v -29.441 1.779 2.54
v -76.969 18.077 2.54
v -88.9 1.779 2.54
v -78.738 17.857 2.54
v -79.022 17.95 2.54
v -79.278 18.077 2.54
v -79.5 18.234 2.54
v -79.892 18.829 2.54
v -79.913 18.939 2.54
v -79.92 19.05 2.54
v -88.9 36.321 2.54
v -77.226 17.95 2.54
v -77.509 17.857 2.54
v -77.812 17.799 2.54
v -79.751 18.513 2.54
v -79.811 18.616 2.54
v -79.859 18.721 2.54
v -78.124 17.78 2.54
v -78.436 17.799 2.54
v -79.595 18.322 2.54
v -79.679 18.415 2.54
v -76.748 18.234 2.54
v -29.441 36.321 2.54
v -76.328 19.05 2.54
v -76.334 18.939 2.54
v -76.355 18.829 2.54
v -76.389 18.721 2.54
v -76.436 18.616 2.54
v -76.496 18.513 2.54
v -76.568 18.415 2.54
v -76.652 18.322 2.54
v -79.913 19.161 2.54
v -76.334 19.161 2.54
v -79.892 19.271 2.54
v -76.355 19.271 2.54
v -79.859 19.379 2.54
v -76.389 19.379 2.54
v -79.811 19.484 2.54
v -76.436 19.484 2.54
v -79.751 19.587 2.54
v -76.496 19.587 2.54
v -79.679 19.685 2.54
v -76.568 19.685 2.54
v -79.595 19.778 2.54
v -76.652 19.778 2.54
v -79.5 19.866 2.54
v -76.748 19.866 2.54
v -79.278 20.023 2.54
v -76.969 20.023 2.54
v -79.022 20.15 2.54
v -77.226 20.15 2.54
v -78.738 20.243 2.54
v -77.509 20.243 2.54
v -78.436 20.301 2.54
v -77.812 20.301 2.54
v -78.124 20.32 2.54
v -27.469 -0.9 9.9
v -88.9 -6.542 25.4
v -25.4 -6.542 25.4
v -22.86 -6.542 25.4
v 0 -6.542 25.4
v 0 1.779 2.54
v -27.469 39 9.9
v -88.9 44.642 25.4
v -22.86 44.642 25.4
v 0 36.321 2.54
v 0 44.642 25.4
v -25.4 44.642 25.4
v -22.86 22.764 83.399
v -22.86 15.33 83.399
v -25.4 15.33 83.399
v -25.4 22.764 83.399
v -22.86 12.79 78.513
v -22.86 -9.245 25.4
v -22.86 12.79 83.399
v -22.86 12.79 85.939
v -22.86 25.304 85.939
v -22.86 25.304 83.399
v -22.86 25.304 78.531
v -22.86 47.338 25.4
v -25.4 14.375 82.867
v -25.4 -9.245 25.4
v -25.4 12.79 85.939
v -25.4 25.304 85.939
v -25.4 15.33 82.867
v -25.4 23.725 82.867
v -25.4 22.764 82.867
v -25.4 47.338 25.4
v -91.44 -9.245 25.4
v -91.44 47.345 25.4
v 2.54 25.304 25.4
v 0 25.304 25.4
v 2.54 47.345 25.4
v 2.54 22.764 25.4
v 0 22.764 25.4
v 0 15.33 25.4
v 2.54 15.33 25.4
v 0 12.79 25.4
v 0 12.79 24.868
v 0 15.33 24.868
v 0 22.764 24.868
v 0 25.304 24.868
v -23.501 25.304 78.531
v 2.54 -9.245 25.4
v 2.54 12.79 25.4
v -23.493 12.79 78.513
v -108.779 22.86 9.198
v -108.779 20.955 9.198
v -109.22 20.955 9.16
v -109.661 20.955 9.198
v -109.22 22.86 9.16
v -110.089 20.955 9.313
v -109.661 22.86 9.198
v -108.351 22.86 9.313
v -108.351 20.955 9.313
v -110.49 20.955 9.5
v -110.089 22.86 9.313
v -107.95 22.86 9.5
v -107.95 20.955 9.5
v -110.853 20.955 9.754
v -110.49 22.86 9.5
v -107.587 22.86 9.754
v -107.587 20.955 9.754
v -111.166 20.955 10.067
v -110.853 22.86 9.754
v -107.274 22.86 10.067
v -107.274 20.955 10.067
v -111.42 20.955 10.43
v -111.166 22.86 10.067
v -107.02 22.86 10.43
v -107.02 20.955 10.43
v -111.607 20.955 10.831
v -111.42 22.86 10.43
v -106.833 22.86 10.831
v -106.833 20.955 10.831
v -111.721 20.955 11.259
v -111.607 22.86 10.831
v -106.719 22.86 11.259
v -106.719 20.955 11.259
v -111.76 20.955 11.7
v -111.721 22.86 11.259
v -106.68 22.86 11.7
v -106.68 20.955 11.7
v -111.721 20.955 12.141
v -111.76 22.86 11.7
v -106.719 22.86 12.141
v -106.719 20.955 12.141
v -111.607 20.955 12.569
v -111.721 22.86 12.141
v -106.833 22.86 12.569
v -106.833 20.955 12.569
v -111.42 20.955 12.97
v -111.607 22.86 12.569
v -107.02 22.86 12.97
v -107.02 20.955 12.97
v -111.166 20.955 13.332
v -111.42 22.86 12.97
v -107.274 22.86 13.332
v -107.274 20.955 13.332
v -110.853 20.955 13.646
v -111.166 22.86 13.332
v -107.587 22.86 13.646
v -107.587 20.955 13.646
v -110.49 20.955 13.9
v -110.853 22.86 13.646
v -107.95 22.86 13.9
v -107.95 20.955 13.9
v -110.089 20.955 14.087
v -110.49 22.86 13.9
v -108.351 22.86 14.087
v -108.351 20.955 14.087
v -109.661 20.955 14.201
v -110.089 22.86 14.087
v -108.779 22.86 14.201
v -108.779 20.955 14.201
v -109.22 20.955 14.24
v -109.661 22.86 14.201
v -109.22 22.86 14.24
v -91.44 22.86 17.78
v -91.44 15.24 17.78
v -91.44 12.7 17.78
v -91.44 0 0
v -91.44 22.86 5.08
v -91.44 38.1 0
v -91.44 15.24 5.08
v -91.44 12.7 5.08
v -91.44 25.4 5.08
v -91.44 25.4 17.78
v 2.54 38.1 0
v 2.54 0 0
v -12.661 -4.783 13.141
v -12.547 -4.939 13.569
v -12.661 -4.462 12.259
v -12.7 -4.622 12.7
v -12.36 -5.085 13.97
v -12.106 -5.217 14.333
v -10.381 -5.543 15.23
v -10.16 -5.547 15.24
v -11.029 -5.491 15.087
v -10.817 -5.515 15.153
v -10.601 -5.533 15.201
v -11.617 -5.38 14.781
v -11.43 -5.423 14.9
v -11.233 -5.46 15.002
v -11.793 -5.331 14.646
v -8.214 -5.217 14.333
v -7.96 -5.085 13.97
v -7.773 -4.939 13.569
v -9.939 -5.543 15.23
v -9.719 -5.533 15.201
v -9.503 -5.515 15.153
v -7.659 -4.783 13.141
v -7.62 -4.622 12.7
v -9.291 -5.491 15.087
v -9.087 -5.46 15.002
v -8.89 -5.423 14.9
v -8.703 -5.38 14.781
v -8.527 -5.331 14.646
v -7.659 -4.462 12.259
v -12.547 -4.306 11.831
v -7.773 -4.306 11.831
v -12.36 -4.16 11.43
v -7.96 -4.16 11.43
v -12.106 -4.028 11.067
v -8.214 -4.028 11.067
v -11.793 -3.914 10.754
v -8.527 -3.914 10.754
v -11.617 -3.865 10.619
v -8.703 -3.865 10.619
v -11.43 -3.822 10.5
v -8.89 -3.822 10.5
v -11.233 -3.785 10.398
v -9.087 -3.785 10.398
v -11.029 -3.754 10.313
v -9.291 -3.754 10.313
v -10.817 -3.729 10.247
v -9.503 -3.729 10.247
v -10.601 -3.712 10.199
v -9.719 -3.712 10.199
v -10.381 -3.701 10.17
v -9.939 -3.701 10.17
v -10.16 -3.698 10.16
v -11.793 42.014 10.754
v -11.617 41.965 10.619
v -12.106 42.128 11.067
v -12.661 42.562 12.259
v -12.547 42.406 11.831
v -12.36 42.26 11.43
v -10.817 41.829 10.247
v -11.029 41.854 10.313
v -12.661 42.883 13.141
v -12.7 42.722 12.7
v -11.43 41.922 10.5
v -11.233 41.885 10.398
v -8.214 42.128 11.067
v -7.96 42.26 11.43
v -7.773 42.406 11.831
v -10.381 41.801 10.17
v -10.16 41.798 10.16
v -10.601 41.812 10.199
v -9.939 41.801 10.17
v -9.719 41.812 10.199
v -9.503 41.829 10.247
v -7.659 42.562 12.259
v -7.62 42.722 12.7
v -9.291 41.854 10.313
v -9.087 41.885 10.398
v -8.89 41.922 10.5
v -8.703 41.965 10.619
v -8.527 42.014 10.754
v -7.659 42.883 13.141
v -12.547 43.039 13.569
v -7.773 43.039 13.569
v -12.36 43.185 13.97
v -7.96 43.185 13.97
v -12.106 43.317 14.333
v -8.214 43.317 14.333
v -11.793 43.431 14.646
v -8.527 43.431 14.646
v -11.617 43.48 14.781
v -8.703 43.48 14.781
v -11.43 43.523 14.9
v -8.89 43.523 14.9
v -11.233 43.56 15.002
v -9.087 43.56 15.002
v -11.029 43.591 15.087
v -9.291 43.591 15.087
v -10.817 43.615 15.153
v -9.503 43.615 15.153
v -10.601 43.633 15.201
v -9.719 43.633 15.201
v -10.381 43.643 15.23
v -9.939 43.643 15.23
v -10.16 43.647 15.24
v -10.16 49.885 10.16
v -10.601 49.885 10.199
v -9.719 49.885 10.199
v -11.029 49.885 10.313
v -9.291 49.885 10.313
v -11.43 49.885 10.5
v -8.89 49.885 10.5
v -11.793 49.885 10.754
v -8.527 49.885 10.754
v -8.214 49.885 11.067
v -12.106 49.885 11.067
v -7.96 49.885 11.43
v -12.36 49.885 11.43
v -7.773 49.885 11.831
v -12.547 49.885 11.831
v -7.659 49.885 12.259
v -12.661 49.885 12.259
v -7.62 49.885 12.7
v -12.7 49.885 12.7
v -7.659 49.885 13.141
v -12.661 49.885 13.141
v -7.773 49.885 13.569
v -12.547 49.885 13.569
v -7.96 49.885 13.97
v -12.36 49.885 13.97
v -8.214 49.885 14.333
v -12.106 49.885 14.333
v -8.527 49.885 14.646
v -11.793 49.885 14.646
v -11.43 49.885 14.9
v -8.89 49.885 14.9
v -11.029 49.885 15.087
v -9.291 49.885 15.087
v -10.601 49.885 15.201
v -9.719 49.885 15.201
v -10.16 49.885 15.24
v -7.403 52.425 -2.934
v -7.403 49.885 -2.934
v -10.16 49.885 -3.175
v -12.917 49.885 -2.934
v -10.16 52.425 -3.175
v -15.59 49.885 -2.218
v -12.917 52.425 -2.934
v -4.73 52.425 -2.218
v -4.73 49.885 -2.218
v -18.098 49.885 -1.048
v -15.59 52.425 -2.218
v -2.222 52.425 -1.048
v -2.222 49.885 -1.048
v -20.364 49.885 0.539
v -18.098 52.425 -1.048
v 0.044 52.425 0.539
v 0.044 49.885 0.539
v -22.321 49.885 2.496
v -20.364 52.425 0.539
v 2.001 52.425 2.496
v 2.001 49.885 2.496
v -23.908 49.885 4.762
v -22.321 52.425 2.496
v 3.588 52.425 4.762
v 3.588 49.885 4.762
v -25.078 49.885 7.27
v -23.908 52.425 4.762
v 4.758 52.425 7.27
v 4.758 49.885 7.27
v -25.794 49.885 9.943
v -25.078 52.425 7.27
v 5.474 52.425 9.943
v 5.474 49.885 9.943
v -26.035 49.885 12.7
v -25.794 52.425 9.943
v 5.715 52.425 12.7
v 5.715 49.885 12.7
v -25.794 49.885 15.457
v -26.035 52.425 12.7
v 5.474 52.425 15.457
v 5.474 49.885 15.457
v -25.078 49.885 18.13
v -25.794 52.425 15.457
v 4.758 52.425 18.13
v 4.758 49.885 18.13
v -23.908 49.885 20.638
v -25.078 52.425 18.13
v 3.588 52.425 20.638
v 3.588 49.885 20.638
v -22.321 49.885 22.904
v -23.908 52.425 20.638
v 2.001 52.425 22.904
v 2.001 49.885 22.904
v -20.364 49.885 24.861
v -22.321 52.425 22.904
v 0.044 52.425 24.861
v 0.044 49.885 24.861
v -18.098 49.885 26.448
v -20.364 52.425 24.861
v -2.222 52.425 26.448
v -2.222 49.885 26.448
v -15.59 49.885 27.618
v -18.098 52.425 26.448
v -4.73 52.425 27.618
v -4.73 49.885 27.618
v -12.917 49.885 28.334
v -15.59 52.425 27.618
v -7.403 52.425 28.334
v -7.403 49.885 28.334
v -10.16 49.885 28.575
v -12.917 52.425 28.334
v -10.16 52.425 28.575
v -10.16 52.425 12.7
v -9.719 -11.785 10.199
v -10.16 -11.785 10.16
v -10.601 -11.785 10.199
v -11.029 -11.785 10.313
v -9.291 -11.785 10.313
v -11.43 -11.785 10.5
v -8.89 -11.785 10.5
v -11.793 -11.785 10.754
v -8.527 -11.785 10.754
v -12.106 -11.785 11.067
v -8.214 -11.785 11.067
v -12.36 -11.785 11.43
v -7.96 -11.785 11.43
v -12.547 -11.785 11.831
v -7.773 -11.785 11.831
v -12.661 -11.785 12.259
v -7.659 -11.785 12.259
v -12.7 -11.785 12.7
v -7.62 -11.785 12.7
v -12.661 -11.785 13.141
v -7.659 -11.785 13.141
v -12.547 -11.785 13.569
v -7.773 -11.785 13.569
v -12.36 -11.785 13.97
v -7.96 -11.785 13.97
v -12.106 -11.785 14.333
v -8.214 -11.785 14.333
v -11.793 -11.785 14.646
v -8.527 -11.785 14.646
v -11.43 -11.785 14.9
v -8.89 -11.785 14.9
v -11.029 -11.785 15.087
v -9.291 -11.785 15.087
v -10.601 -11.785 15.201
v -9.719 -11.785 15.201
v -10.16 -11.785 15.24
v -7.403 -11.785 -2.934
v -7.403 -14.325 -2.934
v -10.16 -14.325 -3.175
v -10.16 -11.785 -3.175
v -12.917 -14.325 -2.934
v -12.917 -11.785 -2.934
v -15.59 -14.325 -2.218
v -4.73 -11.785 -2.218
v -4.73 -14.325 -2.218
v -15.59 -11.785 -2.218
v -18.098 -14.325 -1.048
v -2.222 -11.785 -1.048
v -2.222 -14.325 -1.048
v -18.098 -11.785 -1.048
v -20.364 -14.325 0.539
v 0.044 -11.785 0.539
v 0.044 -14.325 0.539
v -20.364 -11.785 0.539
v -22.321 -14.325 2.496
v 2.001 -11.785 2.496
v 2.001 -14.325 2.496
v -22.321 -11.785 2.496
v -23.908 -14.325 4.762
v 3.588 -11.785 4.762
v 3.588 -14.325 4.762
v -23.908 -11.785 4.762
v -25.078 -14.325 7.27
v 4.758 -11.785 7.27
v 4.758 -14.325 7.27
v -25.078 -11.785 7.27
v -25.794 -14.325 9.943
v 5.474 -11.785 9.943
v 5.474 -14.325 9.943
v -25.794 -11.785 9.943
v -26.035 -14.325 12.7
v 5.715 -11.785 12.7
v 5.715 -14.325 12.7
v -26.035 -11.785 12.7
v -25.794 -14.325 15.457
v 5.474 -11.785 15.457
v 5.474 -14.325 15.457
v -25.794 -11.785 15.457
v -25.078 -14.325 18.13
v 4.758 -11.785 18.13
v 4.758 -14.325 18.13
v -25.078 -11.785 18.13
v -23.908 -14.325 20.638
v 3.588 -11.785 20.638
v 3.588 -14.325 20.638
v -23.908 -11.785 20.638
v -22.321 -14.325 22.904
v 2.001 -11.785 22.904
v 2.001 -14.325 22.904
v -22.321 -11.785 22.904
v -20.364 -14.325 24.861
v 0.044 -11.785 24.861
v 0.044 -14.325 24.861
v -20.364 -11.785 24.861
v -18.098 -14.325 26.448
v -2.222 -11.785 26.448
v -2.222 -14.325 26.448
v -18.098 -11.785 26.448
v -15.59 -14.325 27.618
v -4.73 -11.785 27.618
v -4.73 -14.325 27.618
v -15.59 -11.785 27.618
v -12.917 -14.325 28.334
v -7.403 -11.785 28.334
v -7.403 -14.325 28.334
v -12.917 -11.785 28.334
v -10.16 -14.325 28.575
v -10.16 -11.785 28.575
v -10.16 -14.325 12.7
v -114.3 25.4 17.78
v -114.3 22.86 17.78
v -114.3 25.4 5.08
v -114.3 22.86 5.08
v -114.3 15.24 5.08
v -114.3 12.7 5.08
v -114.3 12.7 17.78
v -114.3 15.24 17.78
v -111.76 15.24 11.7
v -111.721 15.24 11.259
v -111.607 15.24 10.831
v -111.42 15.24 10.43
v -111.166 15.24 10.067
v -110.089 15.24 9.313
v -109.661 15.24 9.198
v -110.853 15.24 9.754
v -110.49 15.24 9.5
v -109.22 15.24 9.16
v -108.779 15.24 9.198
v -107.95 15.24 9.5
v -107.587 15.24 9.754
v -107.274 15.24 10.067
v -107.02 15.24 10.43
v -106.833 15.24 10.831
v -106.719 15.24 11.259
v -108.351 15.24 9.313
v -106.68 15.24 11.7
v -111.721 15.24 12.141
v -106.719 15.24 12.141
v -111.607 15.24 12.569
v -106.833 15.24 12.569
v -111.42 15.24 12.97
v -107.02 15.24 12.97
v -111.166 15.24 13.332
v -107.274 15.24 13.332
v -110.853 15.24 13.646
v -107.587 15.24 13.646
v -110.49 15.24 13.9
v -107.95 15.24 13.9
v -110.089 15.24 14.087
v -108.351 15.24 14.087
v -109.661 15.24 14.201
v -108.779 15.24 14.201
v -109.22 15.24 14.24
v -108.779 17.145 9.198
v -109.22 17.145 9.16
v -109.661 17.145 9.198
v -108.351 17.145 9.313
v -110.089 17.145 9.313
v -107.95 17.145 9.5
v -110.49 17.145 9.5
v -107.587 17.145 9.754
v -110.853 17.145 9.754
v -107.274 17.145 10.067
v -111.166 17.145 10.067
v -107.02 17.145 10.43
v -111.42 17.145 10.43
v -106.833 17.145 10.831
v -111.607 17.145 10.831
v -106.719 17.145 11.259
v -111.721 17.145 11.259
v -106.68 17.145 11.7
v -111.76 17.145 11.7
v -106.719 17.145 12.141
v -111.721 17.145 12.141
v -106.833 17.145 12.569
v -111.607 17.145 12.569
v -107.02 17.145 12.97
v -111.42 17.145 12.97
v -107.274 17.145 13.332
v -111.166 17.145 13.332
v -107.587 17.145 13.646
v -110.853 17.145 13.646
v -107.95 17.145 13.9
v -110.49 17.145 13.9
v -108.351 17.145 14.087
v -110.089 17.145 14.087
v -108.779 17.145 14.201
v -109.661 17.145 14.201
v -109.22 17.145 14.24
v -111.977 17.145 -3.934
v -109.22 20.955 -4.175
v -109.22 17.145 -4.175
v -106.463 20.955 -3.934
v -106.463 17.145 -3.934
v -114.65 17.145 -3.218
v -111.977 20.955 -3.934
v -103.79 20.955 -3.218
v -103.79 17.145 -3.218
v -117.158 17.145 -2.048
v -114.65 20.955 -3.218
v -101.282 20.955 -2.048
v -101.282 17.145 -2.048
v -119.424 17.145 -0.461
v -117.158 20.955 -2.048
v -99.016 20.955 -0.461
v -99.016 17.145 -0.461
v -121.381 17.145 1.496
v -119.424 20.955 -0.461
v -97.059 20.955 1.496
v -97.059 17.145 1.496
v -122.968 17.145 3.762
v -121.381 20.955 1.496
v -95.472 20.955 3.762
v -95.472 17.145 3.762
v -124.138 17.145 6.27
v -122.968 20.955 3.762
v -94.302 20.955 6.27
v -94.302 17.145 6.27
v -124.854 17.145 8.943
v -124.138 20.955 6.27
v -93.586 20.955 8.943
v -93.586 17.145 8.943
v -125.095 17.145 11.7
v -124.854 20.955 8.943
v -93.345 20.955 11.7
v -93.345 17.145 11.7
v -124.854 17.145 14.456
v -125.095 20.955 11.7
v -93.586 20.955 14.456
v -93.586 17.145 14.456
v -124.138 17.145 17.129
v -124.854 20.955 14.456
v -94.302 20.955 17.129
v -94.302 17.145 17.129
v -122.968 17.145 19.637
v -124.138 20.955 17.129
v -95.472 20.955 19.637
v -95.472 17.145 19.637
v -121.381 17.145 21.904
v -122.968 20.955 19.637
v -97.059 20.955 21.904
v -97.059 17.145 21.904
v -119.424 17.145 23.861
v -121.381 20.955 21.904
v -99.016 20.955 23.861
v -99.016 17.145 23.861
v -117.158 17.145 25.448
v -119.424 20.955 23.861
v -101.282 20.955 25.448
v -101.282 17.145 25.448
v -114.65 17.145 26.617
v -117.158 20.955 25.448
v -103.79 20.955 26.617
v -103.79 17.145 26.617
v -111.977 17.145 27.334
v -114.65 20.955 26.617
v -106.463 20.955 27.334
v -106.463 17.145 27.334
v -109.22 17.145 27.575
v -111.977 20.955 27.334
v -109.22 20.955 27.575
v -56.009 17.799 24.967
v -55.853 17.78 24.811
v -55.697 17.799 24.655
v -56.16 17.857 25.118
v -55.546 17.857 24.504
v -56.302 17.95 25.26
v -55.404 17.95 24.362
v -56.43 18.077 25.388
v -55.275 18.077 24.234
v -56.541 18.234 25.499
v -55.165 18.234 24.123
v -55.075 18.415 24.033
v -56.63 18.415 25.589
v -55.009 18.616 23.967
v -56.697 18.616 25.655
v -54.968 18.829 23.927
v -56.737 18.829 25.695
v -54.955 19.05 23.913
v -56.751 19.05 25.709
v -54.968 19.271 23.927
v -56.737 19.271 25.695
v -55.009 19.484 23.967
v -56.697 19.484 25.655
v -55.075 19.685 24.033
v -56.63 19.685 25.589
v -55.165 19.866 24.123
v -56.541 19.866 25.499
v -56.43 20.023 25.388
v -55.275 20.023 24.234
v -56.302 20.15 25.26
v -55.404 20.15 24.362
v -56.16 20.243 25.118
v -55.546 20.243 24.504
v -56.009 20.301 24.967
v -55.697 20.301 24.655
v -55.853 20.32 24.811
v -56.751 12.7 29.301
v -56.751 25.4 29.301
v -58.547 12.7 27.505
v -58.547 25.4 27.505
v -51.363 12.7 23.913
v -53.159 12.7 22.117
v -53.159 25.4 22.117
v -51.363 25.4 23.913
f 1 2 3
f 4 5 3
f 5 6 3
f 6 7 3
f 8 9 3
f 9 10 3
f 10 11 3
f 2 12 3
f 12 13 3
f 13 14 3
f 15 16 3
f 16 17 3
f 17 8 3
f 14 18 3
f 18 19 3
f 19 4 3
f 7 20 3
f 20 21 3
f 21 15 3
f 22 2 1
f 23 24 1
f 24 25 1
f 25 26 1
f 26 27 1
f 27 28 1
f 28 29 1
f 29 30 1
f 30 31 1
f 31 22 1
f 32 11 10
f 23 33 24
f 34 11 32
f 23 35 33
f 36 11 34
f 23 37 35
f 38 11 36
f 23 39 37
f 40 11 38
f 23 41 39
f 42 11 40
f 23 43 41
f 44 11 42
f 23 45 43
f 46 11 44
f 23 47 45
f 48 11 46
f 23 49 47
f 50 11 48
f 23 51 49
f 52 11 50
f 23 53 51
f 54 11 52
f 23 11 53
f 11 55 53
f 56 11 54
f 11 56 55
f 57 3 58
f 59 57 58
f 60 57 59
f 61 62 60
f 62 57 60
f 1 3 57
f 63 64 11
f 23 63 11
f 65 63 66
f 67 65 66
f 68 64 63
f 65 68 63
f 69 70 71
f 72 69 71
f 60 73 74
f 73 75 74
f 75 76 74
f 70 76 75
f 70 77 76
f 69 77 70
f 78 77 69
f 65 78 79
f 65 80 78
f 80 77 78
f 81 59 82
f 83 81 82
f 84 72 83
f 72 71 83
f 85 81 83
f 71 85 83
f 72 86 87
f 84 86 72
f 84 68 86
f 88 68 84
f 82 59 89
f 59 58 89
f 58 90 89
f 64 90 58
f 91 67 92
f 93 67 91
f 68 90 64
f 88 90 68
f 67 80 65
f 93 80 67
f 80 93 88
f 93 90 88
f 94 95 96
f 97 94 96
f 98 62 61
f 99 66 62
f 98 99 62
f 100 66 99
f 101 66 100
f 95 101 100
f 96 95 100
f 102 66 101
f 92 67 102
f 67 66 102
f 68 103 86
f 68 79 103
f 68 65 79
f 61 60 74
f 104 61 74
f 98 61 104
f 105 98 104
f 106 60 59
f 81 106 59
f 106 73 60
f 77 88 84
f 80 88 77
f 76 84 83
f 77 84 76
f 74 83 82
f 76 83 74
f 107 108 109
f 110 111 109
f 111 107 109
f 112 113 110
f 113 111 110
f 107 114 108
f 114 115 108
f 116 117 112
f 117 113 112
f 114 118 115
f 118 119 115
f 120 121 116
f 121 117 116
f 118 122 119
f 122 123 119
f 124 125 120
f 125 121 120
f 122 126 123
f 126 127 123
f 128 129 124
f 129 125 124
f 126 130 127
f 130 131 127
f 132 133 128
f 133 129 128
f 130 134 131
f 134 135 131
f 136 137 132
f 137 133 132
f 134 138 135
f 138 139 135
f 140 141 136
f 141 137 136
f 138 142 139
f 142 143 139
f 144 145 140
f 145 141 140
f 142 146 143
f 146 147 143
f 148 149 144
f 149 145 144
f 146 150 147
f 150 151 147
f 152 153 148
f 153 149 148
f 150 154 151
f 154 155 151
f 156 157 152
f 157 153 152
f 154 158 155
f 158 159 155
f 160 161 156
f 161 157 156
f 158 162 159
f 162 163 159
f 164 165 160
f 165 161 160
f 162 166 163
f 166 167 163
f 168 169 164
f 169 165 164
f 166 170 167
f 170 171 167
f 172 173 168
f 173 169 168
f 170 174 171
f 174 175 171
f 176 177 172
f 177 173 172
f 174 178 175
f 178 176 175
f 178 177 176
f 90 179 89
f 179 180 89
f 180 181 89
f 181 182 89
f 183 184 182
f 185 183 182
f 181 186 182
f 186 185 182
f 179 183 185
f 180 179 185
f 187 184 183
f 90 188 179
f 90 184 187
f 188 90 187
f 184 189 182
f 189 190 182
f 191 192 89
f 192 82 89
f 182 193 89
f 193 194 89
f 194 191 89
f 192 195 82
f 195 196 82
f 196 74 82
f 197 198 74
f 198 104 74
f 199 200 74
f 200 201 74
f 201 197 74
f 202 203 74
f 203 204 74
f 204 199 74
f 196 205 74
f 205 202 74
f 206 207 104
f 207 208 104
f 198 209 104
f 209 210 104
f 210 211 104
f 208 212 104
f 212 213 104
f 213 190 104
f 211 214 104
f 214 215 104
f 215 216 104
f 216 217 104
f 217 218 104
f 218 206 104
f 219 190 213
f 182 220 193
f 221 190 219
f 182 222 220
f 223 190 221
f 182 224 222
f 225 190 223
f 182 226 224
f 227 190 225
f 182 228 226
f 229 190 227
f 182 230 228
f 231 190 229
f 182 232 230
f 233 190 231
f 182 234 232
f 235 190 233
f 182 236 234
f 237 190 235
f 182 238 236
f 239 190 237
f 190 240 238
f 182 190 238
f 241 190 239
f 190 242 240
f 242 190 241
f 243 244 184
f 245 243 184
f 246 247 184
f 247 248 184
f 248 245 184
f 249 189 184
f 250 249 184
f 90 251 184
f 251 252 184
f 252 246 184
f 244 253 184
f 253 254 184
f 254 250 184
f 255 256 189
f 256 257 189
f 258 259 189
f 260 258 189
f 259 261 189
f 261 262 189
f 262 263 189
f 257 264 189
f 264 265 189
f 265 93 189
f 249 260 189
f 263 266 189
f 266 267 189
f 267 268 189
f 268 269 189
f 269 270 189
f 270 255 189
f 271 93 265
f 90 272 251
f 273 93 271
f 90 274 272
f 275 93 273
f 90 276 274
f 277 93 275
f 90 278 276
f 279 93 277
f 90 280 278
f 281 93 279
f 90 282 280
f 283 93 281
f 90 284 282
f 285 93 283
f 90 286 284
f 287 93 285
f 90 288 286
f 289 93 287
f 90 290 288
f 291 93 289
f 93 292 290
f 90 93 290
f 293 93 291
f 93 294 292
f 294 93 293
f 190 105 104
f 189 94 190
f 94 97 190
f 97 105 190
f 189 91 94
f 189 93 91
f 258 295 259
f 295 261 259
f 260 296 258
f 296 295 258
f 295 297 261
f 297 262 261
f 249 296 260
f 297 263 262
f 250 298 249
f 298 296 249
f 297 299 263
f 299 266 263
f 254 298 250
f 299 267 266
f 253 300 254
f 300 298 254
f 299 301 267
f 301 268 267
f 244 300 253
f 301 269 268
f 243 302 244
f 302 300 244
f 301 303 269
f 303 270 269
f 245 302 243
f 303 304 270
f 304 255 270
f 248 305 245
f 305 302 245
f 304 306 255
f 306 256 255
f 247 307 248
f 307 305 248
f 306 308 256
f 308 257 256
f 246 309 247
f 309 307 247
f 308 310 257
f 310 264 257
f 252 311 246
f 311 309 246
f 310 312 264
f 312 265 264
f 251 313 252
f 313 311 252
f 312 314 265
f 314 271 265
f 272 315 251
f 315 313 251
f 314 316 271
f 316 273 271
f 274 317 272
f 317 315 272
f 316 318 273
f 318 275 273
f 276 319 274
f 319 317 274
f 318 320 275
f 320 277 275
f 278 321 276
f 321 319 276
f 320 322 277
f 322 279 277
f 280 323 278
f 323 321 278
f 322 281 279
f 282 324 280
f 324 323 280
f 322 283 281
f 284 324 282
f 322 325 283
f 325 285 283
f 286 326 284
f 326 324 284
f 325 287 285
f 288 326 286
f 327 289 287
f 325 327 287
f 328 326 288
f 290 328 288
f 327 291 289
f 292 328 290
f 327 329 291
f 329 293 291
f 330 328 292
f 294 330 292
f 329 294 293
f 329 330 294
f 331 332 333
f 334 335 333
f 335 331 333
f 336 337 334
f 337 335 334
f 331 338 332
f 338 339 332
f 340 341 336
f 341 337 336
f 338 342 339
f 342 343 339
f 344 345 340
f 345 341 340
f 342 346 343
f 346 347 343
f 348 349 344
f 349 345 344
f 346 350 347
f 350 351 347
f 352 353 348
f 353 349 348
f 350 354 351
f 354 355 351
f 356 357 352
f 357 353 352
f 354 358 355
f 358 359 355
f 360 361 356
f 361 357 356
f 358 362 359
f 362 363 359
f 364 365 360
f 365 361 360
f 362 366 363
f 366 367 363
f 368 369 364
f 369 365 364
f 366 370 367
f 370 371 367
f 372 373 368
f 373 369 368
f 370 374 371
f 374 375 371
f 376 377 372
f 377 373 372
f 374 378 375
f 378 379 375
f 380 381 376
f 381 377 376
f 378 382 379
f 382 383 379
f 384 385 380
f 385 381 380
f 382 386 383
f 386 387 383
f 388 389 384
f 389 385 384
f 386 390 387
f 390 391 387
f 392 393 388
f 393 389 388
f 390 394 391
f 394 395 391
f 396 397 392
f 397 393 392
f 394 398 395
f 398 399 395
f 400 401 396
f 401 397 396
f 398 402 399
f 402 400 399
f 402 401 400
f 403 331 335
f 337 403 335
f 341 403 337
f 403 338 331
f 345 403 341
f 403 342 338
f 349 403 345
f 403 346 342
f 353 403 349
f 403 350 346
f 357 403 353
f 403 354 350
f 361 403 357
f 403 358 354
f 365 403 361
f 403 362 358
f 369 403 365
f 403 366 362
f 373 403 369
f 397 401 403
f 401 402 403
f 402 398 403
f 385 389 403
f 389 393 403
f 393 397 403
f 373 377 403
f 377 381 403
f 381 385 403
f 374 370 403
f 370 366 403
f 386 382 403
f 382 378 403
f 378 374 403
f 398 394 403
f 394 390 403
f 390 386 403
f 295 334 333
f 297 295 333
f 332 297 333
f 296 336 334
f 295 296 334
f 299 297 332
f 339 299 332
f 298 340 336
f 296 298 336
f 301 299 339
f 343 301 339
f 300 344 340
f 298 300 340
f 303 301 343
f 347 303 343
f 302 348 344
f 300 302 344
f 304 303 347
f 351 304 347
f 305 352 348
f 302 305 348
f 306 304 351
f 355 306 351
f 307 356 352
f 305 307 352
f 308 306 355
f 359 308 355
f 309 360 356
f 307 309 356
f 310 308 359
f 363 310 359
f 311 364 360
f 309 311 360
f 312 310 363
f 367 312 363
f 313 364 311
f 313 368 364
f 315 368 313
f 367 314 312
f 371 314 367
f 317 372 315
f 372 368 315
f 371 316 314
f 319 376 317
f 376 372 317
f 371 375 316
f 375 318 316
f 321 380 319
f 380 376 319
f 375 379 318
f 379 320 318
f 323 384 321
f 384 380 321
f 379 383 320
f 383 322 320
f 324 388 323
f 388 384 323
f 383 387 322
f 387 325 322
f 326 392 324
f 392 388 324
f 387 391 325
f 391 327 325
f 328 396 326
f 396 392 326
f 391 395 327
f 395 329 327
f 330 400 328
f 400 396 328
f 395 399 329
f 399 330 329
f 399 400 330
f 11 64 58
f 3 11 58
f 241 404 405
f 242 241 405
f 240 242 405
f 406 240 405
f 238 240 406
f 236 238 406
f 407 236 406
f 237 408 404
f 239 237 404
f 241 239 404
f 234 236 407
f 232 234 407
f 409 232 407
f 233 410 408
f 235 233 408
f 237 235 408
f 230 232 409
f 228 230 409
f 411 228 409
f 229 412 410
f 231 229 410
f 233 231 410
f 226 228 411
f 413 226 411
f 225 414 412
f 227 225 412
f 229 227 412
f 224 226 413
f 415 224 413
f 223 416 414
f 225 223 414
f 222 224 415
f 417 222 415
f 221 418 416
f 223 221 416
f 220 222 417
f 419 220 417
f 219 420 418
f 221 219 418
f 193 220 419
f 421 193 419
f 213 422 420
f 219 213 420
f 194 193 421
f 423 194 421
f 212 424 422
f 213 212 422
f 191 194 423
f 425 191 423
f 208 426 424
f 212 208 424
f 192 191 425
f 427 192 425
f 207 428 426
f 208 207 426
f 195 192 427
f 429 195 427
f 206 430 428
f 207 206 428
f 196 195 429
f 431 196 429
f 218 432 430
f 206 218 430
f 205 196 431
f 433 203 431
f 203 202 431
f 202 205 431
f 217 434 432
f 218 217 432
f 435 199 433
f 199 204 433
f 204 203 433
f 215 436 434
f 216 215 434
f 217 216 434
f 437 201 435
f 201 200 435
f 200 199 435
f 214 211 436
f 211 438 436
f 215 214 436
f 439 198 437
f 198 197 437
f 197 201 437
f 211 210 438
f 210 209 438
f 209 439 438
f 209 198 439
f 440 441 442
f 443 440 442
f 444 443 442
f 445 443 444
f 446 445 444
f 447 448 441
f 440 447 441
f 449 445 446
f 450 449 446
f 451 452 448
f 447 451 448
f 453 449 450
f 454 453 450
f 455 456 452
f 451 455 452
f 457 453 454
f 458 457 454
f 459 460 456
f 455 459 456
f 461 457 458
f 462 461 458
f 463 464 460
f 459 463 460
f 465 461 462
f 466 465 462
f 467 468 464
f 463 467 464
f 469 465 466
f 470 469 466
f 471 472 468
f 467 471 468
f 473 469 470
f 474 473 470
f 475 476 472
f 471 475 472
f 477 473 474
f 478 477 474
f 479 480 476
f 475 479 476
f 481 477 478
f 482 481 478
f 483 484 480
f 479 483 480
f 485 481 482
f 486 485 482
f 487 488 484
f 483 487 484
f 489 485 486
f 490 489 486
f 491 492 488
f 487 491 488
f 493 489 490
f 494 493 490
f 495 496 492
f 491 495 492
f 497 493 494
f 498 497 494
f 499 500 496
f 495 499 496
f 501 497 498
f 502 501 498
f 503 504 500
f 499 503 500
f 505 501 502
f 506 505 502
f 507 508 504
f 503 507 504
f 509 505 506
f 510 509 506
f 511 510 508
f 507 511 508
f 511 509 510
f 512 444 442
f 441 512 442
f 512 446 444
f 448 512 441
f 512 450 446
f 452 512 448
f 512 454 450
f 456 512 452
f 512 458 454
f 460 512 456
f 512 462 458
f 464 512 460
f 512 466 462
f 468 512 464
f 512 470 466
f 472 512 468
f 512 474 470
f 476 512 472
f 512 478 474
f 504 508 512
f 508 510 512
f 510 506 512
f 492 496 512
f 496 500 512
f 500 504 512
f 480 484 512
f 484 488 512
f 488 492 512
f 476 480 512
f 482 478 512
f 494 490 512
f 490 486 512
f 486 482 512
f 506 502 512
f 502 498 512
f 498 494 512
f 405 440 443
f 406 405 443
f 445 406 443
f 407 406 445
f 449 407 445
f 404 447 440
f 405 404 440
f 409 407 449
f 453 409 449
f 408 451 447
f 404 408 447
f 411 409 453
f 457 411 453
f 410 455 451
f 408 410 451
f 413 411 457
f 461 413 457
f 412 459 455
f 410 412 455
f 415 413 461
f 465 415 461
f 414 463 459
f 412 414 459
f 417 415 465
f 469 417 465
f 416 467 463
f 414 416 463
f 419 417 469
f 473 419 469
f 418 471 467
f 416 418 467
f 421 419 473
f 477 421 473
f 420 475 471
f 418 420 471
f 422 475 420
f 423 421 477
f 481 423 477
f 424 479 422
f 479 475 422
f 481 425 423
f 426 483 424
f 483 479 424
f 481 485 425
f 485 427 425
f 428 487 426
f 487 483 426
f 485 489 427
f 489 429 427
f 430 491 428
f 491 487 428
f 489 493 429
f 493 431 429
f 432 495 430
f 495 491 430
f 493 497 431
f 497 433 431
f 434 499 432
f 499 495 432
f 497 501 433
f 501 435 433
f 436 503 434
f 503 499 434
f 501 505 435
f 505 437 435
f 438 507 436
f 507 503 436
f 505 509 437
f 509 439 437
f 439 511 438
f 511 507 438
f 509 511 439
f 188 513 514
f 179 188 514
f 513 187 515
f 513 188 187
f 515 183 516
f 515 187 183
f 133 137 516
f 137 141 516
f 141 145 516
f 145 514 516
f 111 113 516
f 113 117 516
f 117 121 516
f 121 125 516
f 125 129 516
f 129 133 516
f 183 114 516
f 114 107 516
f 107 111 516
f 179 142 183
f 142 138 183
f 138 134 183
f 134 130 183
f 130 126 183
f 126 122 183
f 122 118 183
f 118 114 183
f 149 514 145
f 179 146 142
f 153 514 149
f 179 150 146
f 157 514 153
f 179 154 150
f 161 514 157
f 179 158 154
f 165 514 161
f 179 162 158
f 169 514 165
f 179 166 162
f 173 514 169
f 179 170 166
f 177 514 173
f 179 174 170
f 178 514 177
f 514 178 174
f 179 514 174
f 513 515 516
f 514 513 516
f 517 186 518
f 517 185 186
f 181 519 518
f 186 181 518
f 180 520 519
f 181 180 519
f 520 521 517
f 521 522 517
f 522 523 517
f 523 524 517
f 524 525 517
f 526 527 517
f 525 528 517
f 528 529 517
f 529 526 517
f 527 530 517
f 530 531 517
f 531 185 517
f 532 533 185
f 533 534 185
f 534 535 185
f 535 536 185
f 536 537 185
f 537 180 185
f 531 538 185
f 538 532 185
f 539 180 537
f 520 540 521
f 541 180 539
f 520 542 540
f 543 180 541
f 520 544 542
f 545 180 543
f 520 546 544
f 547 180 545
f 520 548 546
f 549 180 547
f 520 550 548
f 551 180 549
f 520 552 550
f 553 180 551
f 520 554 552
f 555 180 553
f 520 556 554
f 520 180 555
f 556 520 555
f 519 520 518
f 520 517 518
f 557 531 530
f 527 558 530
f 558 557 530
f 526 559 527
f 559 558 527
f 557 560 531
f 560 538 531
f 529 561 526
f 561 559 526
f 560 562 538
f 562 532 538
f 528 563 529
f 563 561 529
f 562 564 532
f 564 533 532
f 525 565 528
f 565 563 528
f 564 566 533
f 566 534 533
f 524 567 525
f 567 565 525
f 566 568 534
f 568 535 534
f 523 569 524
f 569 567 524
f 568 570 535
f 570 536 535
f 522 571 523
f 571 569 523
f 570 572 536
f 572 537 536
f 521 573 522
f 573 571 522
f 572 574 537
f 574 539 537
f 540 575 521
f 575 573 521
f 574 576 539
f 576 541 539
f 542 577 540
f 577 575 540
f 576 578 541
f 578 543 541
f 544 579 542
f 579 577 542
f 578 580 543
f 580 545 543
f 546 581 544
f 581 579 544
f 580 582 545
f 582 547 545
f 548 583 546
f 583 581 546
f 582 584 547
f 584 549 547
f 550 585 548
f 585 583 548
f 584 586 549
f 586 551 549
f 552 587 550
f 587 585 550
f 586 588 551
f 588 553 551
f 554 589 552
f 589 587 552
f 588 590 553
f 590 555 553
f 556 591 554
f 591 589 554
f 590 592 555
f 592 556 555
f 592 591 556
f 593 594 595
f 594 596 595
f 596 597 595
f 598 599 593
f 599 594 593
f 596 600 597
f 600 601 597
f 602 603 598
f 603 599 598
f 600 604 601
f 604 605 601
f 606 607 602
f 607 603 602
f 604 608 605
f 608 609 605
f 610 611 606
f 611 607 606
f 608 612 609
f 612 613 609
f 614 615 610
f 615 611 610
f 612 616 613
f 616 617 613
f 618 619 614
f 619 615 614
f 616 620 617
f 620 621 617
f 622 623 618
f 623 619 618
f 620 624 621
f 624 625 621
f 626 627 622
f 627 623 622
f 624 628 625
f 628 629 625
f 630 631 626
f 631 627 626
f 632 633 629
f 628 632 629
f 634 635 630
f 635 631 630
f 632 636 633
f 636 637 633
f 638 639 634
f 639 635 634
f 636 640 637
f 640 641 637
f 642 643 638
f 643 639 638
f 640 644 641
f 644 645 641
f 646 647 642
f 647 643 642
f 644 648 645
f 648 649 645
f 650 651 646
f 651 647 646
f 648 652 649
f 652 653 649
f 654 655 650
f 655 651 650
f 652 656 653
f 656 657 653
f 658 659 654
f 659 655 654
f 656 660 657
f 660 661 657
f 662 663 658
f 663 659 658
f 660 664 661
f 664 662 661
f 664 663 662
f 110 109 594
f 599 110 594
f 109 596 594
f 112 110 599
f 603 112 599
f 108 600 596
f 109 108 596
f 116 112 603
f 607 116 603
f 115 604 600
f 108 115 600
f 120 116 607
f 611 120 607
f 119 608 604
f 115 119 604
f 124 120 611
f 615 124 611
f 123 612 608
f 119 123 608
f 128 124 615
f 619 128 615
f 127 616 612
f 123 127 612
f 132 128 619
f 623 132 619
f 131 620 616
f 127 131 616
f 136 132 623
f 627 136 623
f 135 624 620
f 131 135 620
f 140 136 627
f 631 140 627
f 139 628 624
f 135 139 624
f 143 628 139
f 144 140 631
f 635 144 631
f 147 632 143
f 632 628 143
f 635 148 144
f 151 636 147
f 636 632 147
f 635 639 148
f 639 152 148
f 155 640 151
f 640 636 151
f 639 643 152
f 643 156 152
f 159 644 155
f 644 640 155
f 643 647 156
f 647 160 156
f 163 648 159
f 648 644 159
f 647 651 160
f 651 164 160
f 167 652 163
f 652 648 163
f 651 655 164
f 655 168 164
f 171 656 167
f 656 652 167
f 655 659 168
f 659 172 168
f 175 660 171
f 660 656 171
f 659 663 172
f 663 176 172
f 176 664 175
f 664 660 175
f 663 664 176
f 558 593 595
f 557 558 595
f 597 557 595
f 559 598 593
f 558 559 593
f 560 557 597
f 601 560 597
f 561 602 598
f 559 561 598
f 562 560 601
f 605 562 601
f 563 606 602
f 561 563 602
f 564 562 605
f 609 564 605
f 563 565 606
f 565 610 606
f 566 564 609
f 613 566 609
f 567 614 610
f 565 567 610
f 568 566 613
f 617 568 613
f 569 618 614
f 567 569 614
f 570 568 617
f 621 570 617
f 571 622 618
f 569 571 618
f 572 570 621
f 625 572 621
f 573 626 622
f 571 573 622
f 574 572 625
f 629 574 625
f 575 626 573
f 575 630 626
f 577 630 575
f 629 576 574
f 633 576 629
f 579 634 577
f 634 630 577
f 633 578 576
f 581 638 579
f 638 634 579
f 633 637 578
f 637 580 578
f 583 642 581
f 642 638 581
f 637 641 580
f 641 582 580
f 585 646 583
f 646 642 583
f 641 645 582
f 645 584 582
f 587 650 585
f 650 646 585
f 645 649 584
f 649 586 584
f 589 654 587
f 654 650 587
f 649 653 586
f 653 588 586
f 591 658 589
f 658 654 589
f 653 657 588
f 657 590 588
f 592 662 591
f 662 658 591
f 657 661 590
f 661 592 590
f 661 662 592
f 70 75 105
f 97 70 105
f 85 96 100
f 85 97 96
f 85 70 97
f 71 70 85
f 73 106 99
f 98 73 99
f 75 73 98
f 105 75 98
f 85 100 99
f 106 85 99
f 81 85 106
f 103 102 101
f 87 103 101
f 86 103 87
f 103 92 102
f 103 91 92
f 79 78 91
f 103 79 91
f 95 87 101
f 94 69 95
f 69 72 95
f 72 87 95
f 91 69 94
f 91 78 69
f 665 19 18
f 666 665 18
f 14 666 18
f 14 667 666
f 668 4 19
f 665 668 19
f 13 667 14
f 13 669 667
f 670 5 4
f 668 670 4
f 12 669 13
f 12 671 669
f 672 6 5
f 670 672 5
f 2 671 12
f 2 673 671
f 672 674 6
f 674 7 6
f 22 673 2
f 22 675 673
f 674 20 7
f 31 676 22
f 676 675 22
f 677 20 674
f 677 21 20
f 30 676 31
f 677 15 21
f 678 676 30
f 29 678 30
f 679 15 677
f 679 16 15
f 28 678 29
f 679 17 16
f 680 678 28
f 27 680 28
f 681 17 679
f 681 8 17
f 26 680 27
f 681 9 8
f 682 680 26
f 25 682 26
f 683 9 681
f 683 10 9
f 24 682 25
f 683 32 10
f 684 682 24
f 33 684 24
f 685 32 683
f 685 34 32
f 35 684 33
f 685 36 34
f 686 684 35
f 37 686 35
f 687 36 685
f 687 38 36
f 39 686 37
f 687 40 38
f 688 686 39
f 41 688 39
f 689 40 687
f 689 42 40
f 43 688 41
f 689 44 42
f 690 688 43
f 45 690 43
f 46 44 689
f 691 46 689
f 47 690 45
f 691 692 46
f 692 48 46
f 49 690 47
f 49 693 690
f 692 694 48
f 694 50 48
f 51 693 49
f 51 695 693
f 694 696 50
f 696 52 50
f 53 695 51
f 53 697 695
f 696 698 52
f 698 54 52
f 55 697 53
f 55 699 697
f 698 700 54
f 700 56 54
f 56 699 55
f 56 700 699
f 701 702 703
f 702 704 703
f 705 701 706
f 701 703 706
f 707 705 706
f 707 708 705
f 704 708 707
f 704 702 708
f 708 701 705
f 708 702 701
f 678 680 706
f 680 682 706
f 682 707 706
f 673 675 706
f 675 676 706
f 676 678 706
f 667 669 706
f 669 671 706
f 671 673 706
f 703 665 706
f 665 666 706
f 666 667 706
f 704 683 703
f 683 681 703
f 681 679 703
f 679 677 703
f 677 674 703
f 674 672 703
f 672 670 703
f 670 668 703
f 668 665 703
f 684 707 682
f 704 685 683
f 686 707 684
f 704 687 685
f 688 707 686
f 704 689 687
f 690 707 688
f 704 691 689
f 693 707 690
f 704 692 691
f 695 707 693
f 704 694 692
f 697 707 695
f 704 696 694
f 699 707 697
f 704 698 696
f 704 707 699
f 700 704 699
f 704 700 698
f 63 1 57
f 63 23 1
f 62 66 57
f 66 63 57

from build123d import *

# Parameters (mm, degrees)
SKETCH1_W                        = 88.9
SKETCH1_H                        = 38.1
BOSS_EXTRUDE1_DEPTH              = 2.54
BOSS_EXTRUDE2_DEPTH              = 88.9
BOSS_EXTRUDE3_DEPTH              = 2.54
SKETCH5_R                        = 2.54
BOSS_EXTRUDE4_DEPTH              = 2.54
BOSS_EXTRUDE4_DIRECTION_2_REACH  = 110.401
SKETCH6_R                        = 15.875
BOSS_EXTRUDE5_DEPTH              = 2.54
BOSS_EXTRUDE6_DEPTH              = 2.54
SKETCH8_W                        = 12.7
SKETCH8_H                        = 2.54
BOSS_EXTRUDE7_DEPTH              = 22.86
SKETCH9_R                        = 2.54
BOSS_EXTRUDE8_DEPTH              = 12.7
SKETCH11_R                       = 15.875
BOSS_EXTRUDE9_DEPTH              = 1.905
BOSS_EXTRUDE9_DEPTH_BACK         = 1.905
SKETCH13_W                       = 2.54
SKETCH13_H                       = 2.53363156
BOSS_EXTRUDE10_DEPTH             = 63.5
BOSS_EXTRUDE10_DIRECTION_2_REACH = 140.326
SKETCH16_W                       = 2.54
SKETCH16_H                       = 2.54
BOSS_EXTRUDE12_DEPTH             = 63.5
BOSS_EXTRUDE12_DIRECTION_2_REACH = 150.26
BOSS_EXTRUDE14_START             = -6.254388
SKETCH18_W                       = 2.54
SKETCH18_H                       = 2.54
BOSS_EXTRUDE14_DEPTH             = 12.514761
SKETCH19_W                       = 65.643872796
SKETCH19_H                       = 2.54
BOSS_EXTRUDE15_DEPTH             = 2.54
SKETCH20_W                       = 5.651471939
SKETCH20_H                       = 13.55717745
CUT_EXTRUDE1_DEPTH               = 2.54
SKETCH21_R                       = 1.27
BOSS_EXTRUDE16_DEPTH             = 39.116
SKETCH22_W                       = 9.722484857
SKETCH22_H                       = 17.213461762
CUT_EXTRUDE2_DEPTH               = 39.116
SKETCH23_W                       = 7.62
SKETCH23_H                       = 12.7
BOSS_EXTRUDE17_DEPTH             = 2.54
BOSS_EXTRUDE18_REACH             = 161.998
BOSS_EXTRUDE18_DIRECTION_2_REACH = 161.998


with BuildPart() as part:
    # Sketch1 → Boss-Extrude1 (new body)
    with BuildSketch(Plane.XY):
        with Locations((-44.45, 19.05)):
            Rectangle(SKETCH1_W, SKETCH1_H)
    extrude(amount=BOSS_EXTRUDE1_DEPTH)

    # Sketch2 → Boss-Extrude2 (add, through all)
    with BuildSketch(Plane.ZY.offset(88.9)):
        Polygon((0, 0), (25.4, -9.24484395), (25.4, -6.541832408), (2.54, 1.778527147), align=None)
        Polygon((0, 38.1), (25.4, 47.34484395), (25.4, 44.641832408), (2.54, 36.321472853), align=None)
    extrude(amount=-BOSS_EXTRUDE2_DEPTH)

    # Sketch3 → Boss-Extrude3 (add)
    with BuildSketch(Plane(origin=(0, 0, 0), x_dir=(0, 0, -1), z_dir=(1, 0, 0))):
        Polygon((-25.4, -9.24484395), (0, 0), (0, 38.1), (-25.4, 47.34484395), align=None)
    extrude(amount=BOSS_EXTRUDE3_DEPTH)

    # Sketch5 → Boss-Extrude4 (add)
    with BuildSketch(Plane(origin=(0, 47.34484395, 0), x_dir=(-1, 0, 0), z_dir=(0, 1, 0))):
        with Locations(Location((10.16, 12.7, 0), (0, 0, 90))):
            Circle(SKETCH5_R)
    boss_extrude4 = extrude(amount=BOSS_EXTRUDE4_DEPTH)

    # Sketch5 → Boss-Extrude4 direction 2 (add, up to next)
    with BuildSketch(Plane(origin=(0, 47.34484395, 0), x_dir=(-1, 0, 0), z_dir=(0, 1, 0)), mode=Mode.PRIVATE) as boss_extrude4_direction_2_sk1:
        with Locations(Location((10.16, 12.7, 0), (0, 0, 90))):
            Circle(SKETCH5_R)
    boss_extrude4_direction_2_tool1 = extrude(boss_extrude4_direction_2_sk1.sketch, amount=-BOSS_EXTRUDE4_DIRECTION_2_REACH, mode=Mode.PRIVATE) - part.part
    boss_extrude4_direction_2 = boss_extrude4_direction_2_tool1.solids().sort_by_distance((-10.16, 47.344844, 12.7))[0]
    add(boss_extrude4_direction_2)

    # Sketch6 → Boss-Extrude5 (add)
    with BuildSketch(Plane(origin=(0, 49.88484395, 0), x_dir=(1, 0, 0), z_dir=(0, 1, 0))):
        with Locations(Location((-10.16, -12.7, 0), (0, 0, 270))):
            Circle(SKETCH6_R)
    boss_extrude5 = extrude(amount=BOSS_EXTRUDE5_DEPTH)

    # Sketch7 → Boss-Extrude6 (add)
    with BuildSketch(Plane.ZY.offset(88.9)):
        Polygon((25.4, 47.34484395), (25.4, 19.05), (0, 19.05), (0, 38.1), align=None)
    boss_extrude6 = extrude(amount=BOSS_EXTRUDE6_DEPTH)

    # Mirror1: Boss-Extrude4, Boss-Extrude4 direction 2, Boss-Extrude5, Boss-Extrude6 across plane
    add(boss_extrude4.mirror(Plane(origin=(0, 19.05, 0), x_dir=(0, 0, 1), z_dir=(0, -1, 0))))
    add(boss_extrude4_direction_2.mirror(Plane(origin=(0, 19.05, 0), x_dir=(0, 0, 1), z_dir=(0, -1, 0))))
    add(boss_extrude5.mirror(Plane(origin=(0, 19.05, 0), x_dir=(0, 0, 1), z_dir=(0, -1, 0))))
    add(boss_extrude6.mirror(Plane(origin=(0, 19.05, 0), x_dir=(0, 0, 1), z_dir=(0, -1, 0))))

    # Sketch8 → Boss-Extrude7 (add)
    with BuildSketch(Plane.ZY.offset(91.44)):
        with Locations((11.43, 24.13)):
            Rectangle(SKETCH8_W, SKETCH8_H)
        with Locations((11.43, 13.97)):
            Rectangle(SKETCH8_W, SKETCH8_H)
    extrude(amount=BOSS_EXTRUDE7_DEPTH)

    # Sketch9 → Boss-Extrude8 (add)
    with BuildSketch(Plane(origin=(0, 12.7, 0), x_dir=(-1, 0, 0), z_dir=(0, -1, 0))):
        with Locations(Location((109.22, -11.699801303, 0), (0, 0, 90))):
            Circle(SKETCH9_R)
    extrude(amount=-BOSS_EXTRUDE8_DEPTH)

    # Sketch11 → Boss-Extrude9 (add, two sides)
    with BuildSketch(Plane(origin=(0, 19.05, 0), x_dir=(-1, 0, 0), z_dir=(0, -1, 0))) as boss_extrude9_sk:
        with Locations(Location((109.22, -11.699801303, 0), (0, 0, 180))):
            Circle(SKETCH11_R)
    extrude(amount=BOSS_EXTRUDE9_DEPTH)
    extrude(boss_extrude9_sk.sketch, amount=-BOSS_EXTRUDE9_DEPTH_BACK)


with BuildPart() as body_2:
    # Sketch13 → Boss-Extrude10 (new body)
    with BuildSketch(Plane(origin=(0, -2.941300262, 8.081156055), x_dir=(-1, 0, 0), z_dir=(0, 0.34202014332566333, -0.9396926207859104))):
        with Locations((24.13, 51.903727913)):
            Rectangle(SKETCH13_W, SKETCH13_H)
    extrude(amount=-BOSS_EXTRUDE10_DEPTH)


    # Sketch13 → Boss-Extrude10 direction 2 (add, up to next)
    with BuildSketch(Plane(origin=(0, -2.941300262, 8.081156055), x_dir=(-1, 0, 0), z_dir=(0, 0.34202014332566333, -0.9396926207859104)), mode=Mode.PRIVATE) as boss_extrude10_direction_2_sk1:
        with Locations((24.13, 51.903727913)):
            Rectangle(SKETCH13_W, SKETCH13_H)
    boss_extrude10_direction_2_tool1 = extrude(boss_extrude10_direction_2_sk1.sketch, amount=BOSS_EXTRUDE10_DIRECTION_2_REACH, mode=Mode.PRIVATE) - part.part
    add(boss_extrude10_direction_2_tool1.solids().sort_by_distance((-24.13, 45.83225, 25.833277))[0])


with BuildPart() as boss_extrude12_tool:
    # Sketch16 → Boss-Extrude12 (new body)
    with BuildSketch(Plane(origin=(0, 7.398153621, 20.326260019), x_dir=(-1, 0, 0), z_dir=(0, 0.34202014332566943, 0.9396926207859081))):
        with Locations((24.13, 16.104623281)):
            Rectangle(SKETCH16_W, SKETCH16_H)
    extrude(amount=BOSS_EXTRUDE12_DEPTH)


with BuildPart() as part_1:
    add(part.part)


with BuildPart() as part_2:
    # Boss-Extrude12: joined with boss_extrude12_tool
    add(part_1.part.fuse(boss_extrude12_tool.part, tol=0.00001))

    # Sketch16 → Boss-Extrude12 direction 2 (add, up to next)
    with BuildSketch(Plane(origin=(0, 7.398153621, 20.326260019), x_dir=(-1, 0, 0), z_dir=(0, 0.34202014332566943, 0.9396926207859081)), mode=Mode.PRIVATE) as boss_extrude12_direction_2_sk1:
        with Locations((24.13, 16.104623281)):
            Rectangle(SKETCH16_W, SKETCH16_H)
    boss_extrude12_direction_2_tool1 = extrude(boss_extrude12_direction_2_sk1.sketch, amount=-BOSS_EXTRUDE12_DIRECTION_2_REACH, mode=Mode.PRIVATE) - part_2.part
    add(boss_extrude12_direction_2_tool1.solids().sort_by_distance((-24.13, -7.735242, 25.834366))[0])


    add(body_2.part)  # Boss-Extrude14 merges body 2
    # Sketch18 → Boss-Extrude14 (add)
    with BuildSketch(Plane(origin=(0, 19.05, 0), x_dir=(-1, 0, 0), z_dir=(0, -1, 0)).offset(BOSS_EXTRUDE14_START)):
        with Locations((24.13, -84.669212584)):
            Rectangle(SKETCH18_W, SKETCH18_H)
    extrude(amount=BOSS_EXTRUDE14_DEPTH)

    # Sketch19 → Boss-Extrude15 (add)
    with BuildSketch(Plane(origin=(11.464782442, 0, 5.020852199), x_dir=(-0.40115477823907125, 0, 0.9160102859116602), z_dir=(-0.9160102859116602, 0, -0.40115477823907125))):
        with Locations((55.069664523, 14.059627436)):
            Rectangle(SKETCH19_W, SKETCH19_H)
        with Locations((55.069664523, 24.033595411)):
            Rectangle(SKETCH19_W, SKETCH19_H)
    extrude(amount=BOSS_EXTRUDE15_DEPTH)

    # Sketch20 → Cut-Extrude1 (cut)
    with BuildSketch(Plane.ZY.offset(25.4)):
        with Locations((83.113476615, 18.525006686)):
            Rectangle(SKETCH20_W, SKETCH20_H)
    extrude(amount=CUT_EXTRUDE1_DEPTH, mode=Mode.SUBTRACT)

    # Sketch21 → Boss-Extrude16 (add)
    with BuildSketch(Plane(origin=(-43.18, 0, -43.18), x_dir=(0, -1, 0), z_dir=(0.7071067811865488, 0, 0.7071067811865464))):
        with Locations(Location((-19.05, -57.037844072, 0), (0, 0, 270))):
            Circle(SKETCH21_R)
    extrude(amount=BOSS_EXTRUDE16_DEPTH)

    # Sketch22 → Cut-Extrude2 (cut)
    with BuildSketch(Plane(origin=(0, 0, 0), x_dir=(-1, 0, 0), z_dir=(0, 0, -1))):
        with Locations((79.946093386, 21.082088855)):
            Rectangle(SKETCH22_W, SKETCH22_H)
    extrude(amount=CUT_EXTRUDE2_DEPTH, mode=Mode.SUBTRACT)

    # Sketch23 → Boss-Extrude17 (add)
    with BuildSketch(Plane(origin=(-15.520811147, 0, -15.520811147), x_dir=(0.7071067811865465, 0, -0.7071067811865487), z_dir=(0.7071067811865487, 0, 0.7071067811865465))):
        with Locations((-57.037844072, 19.05)):
            Rectangle(SKETCH23_W, SKETCH23_H)
    extrude(amount=BOSS_EXTRUDE17_DEPTH)

    # Sketch25 → Boss-Extrude18 (add, up to next)
    with BuildSketch(Plane(origin=(0, 36.321472853, 0), x_dir=(-1, 0, 0), z_dir=(0, 1, 0)), mode=Mode.PRIVATE) as boss_extrude18_sk1:
        Polygon((0, 2.54), (27.469218062, 9.900354796), (29.441419185, 2.54), align=None)
    boss_extrude18_tool1 = extrude(boss_extrude18_sk1.sketch, amount=-BOSS_EXTRUDE18_REACH, mode=Mode.PRIVATE) - part_2.part
    add(boss_extrude18_tool1.solids().sort_by_distance((-18.970212, 36.321473, 4.993452))[0])

    # Sketch25 → Boss-Extrude18 direction 2 (add, up to next)
    with BuildSketch(Plane(origin=(0, 36.321472853, 0), x_dir=(-1, 0, 0), z_dir=(0, 1, 0)), mode=Mode.PRIVATE) as boss_extrude18_direction_2_sk1:
        Polygon((0, 2.54), (27.469218062, 9.900354796), (29.441419185, 2.54), align=None)
    boss_extrude18_direction_2_tool1 = extrude(boss_extrude18_direction_2_sk1.sketch, amount=BOSS_EXTRUDE18_DIRECTION_2_REACH, mode=Mode.PRIVATE) - part_2.part
    add(boss_extrude18_direction_2_tool1.solids().sort_by_distance((-18.970212, 36.321473, 4.993452))[0])


solid = part_2.part
